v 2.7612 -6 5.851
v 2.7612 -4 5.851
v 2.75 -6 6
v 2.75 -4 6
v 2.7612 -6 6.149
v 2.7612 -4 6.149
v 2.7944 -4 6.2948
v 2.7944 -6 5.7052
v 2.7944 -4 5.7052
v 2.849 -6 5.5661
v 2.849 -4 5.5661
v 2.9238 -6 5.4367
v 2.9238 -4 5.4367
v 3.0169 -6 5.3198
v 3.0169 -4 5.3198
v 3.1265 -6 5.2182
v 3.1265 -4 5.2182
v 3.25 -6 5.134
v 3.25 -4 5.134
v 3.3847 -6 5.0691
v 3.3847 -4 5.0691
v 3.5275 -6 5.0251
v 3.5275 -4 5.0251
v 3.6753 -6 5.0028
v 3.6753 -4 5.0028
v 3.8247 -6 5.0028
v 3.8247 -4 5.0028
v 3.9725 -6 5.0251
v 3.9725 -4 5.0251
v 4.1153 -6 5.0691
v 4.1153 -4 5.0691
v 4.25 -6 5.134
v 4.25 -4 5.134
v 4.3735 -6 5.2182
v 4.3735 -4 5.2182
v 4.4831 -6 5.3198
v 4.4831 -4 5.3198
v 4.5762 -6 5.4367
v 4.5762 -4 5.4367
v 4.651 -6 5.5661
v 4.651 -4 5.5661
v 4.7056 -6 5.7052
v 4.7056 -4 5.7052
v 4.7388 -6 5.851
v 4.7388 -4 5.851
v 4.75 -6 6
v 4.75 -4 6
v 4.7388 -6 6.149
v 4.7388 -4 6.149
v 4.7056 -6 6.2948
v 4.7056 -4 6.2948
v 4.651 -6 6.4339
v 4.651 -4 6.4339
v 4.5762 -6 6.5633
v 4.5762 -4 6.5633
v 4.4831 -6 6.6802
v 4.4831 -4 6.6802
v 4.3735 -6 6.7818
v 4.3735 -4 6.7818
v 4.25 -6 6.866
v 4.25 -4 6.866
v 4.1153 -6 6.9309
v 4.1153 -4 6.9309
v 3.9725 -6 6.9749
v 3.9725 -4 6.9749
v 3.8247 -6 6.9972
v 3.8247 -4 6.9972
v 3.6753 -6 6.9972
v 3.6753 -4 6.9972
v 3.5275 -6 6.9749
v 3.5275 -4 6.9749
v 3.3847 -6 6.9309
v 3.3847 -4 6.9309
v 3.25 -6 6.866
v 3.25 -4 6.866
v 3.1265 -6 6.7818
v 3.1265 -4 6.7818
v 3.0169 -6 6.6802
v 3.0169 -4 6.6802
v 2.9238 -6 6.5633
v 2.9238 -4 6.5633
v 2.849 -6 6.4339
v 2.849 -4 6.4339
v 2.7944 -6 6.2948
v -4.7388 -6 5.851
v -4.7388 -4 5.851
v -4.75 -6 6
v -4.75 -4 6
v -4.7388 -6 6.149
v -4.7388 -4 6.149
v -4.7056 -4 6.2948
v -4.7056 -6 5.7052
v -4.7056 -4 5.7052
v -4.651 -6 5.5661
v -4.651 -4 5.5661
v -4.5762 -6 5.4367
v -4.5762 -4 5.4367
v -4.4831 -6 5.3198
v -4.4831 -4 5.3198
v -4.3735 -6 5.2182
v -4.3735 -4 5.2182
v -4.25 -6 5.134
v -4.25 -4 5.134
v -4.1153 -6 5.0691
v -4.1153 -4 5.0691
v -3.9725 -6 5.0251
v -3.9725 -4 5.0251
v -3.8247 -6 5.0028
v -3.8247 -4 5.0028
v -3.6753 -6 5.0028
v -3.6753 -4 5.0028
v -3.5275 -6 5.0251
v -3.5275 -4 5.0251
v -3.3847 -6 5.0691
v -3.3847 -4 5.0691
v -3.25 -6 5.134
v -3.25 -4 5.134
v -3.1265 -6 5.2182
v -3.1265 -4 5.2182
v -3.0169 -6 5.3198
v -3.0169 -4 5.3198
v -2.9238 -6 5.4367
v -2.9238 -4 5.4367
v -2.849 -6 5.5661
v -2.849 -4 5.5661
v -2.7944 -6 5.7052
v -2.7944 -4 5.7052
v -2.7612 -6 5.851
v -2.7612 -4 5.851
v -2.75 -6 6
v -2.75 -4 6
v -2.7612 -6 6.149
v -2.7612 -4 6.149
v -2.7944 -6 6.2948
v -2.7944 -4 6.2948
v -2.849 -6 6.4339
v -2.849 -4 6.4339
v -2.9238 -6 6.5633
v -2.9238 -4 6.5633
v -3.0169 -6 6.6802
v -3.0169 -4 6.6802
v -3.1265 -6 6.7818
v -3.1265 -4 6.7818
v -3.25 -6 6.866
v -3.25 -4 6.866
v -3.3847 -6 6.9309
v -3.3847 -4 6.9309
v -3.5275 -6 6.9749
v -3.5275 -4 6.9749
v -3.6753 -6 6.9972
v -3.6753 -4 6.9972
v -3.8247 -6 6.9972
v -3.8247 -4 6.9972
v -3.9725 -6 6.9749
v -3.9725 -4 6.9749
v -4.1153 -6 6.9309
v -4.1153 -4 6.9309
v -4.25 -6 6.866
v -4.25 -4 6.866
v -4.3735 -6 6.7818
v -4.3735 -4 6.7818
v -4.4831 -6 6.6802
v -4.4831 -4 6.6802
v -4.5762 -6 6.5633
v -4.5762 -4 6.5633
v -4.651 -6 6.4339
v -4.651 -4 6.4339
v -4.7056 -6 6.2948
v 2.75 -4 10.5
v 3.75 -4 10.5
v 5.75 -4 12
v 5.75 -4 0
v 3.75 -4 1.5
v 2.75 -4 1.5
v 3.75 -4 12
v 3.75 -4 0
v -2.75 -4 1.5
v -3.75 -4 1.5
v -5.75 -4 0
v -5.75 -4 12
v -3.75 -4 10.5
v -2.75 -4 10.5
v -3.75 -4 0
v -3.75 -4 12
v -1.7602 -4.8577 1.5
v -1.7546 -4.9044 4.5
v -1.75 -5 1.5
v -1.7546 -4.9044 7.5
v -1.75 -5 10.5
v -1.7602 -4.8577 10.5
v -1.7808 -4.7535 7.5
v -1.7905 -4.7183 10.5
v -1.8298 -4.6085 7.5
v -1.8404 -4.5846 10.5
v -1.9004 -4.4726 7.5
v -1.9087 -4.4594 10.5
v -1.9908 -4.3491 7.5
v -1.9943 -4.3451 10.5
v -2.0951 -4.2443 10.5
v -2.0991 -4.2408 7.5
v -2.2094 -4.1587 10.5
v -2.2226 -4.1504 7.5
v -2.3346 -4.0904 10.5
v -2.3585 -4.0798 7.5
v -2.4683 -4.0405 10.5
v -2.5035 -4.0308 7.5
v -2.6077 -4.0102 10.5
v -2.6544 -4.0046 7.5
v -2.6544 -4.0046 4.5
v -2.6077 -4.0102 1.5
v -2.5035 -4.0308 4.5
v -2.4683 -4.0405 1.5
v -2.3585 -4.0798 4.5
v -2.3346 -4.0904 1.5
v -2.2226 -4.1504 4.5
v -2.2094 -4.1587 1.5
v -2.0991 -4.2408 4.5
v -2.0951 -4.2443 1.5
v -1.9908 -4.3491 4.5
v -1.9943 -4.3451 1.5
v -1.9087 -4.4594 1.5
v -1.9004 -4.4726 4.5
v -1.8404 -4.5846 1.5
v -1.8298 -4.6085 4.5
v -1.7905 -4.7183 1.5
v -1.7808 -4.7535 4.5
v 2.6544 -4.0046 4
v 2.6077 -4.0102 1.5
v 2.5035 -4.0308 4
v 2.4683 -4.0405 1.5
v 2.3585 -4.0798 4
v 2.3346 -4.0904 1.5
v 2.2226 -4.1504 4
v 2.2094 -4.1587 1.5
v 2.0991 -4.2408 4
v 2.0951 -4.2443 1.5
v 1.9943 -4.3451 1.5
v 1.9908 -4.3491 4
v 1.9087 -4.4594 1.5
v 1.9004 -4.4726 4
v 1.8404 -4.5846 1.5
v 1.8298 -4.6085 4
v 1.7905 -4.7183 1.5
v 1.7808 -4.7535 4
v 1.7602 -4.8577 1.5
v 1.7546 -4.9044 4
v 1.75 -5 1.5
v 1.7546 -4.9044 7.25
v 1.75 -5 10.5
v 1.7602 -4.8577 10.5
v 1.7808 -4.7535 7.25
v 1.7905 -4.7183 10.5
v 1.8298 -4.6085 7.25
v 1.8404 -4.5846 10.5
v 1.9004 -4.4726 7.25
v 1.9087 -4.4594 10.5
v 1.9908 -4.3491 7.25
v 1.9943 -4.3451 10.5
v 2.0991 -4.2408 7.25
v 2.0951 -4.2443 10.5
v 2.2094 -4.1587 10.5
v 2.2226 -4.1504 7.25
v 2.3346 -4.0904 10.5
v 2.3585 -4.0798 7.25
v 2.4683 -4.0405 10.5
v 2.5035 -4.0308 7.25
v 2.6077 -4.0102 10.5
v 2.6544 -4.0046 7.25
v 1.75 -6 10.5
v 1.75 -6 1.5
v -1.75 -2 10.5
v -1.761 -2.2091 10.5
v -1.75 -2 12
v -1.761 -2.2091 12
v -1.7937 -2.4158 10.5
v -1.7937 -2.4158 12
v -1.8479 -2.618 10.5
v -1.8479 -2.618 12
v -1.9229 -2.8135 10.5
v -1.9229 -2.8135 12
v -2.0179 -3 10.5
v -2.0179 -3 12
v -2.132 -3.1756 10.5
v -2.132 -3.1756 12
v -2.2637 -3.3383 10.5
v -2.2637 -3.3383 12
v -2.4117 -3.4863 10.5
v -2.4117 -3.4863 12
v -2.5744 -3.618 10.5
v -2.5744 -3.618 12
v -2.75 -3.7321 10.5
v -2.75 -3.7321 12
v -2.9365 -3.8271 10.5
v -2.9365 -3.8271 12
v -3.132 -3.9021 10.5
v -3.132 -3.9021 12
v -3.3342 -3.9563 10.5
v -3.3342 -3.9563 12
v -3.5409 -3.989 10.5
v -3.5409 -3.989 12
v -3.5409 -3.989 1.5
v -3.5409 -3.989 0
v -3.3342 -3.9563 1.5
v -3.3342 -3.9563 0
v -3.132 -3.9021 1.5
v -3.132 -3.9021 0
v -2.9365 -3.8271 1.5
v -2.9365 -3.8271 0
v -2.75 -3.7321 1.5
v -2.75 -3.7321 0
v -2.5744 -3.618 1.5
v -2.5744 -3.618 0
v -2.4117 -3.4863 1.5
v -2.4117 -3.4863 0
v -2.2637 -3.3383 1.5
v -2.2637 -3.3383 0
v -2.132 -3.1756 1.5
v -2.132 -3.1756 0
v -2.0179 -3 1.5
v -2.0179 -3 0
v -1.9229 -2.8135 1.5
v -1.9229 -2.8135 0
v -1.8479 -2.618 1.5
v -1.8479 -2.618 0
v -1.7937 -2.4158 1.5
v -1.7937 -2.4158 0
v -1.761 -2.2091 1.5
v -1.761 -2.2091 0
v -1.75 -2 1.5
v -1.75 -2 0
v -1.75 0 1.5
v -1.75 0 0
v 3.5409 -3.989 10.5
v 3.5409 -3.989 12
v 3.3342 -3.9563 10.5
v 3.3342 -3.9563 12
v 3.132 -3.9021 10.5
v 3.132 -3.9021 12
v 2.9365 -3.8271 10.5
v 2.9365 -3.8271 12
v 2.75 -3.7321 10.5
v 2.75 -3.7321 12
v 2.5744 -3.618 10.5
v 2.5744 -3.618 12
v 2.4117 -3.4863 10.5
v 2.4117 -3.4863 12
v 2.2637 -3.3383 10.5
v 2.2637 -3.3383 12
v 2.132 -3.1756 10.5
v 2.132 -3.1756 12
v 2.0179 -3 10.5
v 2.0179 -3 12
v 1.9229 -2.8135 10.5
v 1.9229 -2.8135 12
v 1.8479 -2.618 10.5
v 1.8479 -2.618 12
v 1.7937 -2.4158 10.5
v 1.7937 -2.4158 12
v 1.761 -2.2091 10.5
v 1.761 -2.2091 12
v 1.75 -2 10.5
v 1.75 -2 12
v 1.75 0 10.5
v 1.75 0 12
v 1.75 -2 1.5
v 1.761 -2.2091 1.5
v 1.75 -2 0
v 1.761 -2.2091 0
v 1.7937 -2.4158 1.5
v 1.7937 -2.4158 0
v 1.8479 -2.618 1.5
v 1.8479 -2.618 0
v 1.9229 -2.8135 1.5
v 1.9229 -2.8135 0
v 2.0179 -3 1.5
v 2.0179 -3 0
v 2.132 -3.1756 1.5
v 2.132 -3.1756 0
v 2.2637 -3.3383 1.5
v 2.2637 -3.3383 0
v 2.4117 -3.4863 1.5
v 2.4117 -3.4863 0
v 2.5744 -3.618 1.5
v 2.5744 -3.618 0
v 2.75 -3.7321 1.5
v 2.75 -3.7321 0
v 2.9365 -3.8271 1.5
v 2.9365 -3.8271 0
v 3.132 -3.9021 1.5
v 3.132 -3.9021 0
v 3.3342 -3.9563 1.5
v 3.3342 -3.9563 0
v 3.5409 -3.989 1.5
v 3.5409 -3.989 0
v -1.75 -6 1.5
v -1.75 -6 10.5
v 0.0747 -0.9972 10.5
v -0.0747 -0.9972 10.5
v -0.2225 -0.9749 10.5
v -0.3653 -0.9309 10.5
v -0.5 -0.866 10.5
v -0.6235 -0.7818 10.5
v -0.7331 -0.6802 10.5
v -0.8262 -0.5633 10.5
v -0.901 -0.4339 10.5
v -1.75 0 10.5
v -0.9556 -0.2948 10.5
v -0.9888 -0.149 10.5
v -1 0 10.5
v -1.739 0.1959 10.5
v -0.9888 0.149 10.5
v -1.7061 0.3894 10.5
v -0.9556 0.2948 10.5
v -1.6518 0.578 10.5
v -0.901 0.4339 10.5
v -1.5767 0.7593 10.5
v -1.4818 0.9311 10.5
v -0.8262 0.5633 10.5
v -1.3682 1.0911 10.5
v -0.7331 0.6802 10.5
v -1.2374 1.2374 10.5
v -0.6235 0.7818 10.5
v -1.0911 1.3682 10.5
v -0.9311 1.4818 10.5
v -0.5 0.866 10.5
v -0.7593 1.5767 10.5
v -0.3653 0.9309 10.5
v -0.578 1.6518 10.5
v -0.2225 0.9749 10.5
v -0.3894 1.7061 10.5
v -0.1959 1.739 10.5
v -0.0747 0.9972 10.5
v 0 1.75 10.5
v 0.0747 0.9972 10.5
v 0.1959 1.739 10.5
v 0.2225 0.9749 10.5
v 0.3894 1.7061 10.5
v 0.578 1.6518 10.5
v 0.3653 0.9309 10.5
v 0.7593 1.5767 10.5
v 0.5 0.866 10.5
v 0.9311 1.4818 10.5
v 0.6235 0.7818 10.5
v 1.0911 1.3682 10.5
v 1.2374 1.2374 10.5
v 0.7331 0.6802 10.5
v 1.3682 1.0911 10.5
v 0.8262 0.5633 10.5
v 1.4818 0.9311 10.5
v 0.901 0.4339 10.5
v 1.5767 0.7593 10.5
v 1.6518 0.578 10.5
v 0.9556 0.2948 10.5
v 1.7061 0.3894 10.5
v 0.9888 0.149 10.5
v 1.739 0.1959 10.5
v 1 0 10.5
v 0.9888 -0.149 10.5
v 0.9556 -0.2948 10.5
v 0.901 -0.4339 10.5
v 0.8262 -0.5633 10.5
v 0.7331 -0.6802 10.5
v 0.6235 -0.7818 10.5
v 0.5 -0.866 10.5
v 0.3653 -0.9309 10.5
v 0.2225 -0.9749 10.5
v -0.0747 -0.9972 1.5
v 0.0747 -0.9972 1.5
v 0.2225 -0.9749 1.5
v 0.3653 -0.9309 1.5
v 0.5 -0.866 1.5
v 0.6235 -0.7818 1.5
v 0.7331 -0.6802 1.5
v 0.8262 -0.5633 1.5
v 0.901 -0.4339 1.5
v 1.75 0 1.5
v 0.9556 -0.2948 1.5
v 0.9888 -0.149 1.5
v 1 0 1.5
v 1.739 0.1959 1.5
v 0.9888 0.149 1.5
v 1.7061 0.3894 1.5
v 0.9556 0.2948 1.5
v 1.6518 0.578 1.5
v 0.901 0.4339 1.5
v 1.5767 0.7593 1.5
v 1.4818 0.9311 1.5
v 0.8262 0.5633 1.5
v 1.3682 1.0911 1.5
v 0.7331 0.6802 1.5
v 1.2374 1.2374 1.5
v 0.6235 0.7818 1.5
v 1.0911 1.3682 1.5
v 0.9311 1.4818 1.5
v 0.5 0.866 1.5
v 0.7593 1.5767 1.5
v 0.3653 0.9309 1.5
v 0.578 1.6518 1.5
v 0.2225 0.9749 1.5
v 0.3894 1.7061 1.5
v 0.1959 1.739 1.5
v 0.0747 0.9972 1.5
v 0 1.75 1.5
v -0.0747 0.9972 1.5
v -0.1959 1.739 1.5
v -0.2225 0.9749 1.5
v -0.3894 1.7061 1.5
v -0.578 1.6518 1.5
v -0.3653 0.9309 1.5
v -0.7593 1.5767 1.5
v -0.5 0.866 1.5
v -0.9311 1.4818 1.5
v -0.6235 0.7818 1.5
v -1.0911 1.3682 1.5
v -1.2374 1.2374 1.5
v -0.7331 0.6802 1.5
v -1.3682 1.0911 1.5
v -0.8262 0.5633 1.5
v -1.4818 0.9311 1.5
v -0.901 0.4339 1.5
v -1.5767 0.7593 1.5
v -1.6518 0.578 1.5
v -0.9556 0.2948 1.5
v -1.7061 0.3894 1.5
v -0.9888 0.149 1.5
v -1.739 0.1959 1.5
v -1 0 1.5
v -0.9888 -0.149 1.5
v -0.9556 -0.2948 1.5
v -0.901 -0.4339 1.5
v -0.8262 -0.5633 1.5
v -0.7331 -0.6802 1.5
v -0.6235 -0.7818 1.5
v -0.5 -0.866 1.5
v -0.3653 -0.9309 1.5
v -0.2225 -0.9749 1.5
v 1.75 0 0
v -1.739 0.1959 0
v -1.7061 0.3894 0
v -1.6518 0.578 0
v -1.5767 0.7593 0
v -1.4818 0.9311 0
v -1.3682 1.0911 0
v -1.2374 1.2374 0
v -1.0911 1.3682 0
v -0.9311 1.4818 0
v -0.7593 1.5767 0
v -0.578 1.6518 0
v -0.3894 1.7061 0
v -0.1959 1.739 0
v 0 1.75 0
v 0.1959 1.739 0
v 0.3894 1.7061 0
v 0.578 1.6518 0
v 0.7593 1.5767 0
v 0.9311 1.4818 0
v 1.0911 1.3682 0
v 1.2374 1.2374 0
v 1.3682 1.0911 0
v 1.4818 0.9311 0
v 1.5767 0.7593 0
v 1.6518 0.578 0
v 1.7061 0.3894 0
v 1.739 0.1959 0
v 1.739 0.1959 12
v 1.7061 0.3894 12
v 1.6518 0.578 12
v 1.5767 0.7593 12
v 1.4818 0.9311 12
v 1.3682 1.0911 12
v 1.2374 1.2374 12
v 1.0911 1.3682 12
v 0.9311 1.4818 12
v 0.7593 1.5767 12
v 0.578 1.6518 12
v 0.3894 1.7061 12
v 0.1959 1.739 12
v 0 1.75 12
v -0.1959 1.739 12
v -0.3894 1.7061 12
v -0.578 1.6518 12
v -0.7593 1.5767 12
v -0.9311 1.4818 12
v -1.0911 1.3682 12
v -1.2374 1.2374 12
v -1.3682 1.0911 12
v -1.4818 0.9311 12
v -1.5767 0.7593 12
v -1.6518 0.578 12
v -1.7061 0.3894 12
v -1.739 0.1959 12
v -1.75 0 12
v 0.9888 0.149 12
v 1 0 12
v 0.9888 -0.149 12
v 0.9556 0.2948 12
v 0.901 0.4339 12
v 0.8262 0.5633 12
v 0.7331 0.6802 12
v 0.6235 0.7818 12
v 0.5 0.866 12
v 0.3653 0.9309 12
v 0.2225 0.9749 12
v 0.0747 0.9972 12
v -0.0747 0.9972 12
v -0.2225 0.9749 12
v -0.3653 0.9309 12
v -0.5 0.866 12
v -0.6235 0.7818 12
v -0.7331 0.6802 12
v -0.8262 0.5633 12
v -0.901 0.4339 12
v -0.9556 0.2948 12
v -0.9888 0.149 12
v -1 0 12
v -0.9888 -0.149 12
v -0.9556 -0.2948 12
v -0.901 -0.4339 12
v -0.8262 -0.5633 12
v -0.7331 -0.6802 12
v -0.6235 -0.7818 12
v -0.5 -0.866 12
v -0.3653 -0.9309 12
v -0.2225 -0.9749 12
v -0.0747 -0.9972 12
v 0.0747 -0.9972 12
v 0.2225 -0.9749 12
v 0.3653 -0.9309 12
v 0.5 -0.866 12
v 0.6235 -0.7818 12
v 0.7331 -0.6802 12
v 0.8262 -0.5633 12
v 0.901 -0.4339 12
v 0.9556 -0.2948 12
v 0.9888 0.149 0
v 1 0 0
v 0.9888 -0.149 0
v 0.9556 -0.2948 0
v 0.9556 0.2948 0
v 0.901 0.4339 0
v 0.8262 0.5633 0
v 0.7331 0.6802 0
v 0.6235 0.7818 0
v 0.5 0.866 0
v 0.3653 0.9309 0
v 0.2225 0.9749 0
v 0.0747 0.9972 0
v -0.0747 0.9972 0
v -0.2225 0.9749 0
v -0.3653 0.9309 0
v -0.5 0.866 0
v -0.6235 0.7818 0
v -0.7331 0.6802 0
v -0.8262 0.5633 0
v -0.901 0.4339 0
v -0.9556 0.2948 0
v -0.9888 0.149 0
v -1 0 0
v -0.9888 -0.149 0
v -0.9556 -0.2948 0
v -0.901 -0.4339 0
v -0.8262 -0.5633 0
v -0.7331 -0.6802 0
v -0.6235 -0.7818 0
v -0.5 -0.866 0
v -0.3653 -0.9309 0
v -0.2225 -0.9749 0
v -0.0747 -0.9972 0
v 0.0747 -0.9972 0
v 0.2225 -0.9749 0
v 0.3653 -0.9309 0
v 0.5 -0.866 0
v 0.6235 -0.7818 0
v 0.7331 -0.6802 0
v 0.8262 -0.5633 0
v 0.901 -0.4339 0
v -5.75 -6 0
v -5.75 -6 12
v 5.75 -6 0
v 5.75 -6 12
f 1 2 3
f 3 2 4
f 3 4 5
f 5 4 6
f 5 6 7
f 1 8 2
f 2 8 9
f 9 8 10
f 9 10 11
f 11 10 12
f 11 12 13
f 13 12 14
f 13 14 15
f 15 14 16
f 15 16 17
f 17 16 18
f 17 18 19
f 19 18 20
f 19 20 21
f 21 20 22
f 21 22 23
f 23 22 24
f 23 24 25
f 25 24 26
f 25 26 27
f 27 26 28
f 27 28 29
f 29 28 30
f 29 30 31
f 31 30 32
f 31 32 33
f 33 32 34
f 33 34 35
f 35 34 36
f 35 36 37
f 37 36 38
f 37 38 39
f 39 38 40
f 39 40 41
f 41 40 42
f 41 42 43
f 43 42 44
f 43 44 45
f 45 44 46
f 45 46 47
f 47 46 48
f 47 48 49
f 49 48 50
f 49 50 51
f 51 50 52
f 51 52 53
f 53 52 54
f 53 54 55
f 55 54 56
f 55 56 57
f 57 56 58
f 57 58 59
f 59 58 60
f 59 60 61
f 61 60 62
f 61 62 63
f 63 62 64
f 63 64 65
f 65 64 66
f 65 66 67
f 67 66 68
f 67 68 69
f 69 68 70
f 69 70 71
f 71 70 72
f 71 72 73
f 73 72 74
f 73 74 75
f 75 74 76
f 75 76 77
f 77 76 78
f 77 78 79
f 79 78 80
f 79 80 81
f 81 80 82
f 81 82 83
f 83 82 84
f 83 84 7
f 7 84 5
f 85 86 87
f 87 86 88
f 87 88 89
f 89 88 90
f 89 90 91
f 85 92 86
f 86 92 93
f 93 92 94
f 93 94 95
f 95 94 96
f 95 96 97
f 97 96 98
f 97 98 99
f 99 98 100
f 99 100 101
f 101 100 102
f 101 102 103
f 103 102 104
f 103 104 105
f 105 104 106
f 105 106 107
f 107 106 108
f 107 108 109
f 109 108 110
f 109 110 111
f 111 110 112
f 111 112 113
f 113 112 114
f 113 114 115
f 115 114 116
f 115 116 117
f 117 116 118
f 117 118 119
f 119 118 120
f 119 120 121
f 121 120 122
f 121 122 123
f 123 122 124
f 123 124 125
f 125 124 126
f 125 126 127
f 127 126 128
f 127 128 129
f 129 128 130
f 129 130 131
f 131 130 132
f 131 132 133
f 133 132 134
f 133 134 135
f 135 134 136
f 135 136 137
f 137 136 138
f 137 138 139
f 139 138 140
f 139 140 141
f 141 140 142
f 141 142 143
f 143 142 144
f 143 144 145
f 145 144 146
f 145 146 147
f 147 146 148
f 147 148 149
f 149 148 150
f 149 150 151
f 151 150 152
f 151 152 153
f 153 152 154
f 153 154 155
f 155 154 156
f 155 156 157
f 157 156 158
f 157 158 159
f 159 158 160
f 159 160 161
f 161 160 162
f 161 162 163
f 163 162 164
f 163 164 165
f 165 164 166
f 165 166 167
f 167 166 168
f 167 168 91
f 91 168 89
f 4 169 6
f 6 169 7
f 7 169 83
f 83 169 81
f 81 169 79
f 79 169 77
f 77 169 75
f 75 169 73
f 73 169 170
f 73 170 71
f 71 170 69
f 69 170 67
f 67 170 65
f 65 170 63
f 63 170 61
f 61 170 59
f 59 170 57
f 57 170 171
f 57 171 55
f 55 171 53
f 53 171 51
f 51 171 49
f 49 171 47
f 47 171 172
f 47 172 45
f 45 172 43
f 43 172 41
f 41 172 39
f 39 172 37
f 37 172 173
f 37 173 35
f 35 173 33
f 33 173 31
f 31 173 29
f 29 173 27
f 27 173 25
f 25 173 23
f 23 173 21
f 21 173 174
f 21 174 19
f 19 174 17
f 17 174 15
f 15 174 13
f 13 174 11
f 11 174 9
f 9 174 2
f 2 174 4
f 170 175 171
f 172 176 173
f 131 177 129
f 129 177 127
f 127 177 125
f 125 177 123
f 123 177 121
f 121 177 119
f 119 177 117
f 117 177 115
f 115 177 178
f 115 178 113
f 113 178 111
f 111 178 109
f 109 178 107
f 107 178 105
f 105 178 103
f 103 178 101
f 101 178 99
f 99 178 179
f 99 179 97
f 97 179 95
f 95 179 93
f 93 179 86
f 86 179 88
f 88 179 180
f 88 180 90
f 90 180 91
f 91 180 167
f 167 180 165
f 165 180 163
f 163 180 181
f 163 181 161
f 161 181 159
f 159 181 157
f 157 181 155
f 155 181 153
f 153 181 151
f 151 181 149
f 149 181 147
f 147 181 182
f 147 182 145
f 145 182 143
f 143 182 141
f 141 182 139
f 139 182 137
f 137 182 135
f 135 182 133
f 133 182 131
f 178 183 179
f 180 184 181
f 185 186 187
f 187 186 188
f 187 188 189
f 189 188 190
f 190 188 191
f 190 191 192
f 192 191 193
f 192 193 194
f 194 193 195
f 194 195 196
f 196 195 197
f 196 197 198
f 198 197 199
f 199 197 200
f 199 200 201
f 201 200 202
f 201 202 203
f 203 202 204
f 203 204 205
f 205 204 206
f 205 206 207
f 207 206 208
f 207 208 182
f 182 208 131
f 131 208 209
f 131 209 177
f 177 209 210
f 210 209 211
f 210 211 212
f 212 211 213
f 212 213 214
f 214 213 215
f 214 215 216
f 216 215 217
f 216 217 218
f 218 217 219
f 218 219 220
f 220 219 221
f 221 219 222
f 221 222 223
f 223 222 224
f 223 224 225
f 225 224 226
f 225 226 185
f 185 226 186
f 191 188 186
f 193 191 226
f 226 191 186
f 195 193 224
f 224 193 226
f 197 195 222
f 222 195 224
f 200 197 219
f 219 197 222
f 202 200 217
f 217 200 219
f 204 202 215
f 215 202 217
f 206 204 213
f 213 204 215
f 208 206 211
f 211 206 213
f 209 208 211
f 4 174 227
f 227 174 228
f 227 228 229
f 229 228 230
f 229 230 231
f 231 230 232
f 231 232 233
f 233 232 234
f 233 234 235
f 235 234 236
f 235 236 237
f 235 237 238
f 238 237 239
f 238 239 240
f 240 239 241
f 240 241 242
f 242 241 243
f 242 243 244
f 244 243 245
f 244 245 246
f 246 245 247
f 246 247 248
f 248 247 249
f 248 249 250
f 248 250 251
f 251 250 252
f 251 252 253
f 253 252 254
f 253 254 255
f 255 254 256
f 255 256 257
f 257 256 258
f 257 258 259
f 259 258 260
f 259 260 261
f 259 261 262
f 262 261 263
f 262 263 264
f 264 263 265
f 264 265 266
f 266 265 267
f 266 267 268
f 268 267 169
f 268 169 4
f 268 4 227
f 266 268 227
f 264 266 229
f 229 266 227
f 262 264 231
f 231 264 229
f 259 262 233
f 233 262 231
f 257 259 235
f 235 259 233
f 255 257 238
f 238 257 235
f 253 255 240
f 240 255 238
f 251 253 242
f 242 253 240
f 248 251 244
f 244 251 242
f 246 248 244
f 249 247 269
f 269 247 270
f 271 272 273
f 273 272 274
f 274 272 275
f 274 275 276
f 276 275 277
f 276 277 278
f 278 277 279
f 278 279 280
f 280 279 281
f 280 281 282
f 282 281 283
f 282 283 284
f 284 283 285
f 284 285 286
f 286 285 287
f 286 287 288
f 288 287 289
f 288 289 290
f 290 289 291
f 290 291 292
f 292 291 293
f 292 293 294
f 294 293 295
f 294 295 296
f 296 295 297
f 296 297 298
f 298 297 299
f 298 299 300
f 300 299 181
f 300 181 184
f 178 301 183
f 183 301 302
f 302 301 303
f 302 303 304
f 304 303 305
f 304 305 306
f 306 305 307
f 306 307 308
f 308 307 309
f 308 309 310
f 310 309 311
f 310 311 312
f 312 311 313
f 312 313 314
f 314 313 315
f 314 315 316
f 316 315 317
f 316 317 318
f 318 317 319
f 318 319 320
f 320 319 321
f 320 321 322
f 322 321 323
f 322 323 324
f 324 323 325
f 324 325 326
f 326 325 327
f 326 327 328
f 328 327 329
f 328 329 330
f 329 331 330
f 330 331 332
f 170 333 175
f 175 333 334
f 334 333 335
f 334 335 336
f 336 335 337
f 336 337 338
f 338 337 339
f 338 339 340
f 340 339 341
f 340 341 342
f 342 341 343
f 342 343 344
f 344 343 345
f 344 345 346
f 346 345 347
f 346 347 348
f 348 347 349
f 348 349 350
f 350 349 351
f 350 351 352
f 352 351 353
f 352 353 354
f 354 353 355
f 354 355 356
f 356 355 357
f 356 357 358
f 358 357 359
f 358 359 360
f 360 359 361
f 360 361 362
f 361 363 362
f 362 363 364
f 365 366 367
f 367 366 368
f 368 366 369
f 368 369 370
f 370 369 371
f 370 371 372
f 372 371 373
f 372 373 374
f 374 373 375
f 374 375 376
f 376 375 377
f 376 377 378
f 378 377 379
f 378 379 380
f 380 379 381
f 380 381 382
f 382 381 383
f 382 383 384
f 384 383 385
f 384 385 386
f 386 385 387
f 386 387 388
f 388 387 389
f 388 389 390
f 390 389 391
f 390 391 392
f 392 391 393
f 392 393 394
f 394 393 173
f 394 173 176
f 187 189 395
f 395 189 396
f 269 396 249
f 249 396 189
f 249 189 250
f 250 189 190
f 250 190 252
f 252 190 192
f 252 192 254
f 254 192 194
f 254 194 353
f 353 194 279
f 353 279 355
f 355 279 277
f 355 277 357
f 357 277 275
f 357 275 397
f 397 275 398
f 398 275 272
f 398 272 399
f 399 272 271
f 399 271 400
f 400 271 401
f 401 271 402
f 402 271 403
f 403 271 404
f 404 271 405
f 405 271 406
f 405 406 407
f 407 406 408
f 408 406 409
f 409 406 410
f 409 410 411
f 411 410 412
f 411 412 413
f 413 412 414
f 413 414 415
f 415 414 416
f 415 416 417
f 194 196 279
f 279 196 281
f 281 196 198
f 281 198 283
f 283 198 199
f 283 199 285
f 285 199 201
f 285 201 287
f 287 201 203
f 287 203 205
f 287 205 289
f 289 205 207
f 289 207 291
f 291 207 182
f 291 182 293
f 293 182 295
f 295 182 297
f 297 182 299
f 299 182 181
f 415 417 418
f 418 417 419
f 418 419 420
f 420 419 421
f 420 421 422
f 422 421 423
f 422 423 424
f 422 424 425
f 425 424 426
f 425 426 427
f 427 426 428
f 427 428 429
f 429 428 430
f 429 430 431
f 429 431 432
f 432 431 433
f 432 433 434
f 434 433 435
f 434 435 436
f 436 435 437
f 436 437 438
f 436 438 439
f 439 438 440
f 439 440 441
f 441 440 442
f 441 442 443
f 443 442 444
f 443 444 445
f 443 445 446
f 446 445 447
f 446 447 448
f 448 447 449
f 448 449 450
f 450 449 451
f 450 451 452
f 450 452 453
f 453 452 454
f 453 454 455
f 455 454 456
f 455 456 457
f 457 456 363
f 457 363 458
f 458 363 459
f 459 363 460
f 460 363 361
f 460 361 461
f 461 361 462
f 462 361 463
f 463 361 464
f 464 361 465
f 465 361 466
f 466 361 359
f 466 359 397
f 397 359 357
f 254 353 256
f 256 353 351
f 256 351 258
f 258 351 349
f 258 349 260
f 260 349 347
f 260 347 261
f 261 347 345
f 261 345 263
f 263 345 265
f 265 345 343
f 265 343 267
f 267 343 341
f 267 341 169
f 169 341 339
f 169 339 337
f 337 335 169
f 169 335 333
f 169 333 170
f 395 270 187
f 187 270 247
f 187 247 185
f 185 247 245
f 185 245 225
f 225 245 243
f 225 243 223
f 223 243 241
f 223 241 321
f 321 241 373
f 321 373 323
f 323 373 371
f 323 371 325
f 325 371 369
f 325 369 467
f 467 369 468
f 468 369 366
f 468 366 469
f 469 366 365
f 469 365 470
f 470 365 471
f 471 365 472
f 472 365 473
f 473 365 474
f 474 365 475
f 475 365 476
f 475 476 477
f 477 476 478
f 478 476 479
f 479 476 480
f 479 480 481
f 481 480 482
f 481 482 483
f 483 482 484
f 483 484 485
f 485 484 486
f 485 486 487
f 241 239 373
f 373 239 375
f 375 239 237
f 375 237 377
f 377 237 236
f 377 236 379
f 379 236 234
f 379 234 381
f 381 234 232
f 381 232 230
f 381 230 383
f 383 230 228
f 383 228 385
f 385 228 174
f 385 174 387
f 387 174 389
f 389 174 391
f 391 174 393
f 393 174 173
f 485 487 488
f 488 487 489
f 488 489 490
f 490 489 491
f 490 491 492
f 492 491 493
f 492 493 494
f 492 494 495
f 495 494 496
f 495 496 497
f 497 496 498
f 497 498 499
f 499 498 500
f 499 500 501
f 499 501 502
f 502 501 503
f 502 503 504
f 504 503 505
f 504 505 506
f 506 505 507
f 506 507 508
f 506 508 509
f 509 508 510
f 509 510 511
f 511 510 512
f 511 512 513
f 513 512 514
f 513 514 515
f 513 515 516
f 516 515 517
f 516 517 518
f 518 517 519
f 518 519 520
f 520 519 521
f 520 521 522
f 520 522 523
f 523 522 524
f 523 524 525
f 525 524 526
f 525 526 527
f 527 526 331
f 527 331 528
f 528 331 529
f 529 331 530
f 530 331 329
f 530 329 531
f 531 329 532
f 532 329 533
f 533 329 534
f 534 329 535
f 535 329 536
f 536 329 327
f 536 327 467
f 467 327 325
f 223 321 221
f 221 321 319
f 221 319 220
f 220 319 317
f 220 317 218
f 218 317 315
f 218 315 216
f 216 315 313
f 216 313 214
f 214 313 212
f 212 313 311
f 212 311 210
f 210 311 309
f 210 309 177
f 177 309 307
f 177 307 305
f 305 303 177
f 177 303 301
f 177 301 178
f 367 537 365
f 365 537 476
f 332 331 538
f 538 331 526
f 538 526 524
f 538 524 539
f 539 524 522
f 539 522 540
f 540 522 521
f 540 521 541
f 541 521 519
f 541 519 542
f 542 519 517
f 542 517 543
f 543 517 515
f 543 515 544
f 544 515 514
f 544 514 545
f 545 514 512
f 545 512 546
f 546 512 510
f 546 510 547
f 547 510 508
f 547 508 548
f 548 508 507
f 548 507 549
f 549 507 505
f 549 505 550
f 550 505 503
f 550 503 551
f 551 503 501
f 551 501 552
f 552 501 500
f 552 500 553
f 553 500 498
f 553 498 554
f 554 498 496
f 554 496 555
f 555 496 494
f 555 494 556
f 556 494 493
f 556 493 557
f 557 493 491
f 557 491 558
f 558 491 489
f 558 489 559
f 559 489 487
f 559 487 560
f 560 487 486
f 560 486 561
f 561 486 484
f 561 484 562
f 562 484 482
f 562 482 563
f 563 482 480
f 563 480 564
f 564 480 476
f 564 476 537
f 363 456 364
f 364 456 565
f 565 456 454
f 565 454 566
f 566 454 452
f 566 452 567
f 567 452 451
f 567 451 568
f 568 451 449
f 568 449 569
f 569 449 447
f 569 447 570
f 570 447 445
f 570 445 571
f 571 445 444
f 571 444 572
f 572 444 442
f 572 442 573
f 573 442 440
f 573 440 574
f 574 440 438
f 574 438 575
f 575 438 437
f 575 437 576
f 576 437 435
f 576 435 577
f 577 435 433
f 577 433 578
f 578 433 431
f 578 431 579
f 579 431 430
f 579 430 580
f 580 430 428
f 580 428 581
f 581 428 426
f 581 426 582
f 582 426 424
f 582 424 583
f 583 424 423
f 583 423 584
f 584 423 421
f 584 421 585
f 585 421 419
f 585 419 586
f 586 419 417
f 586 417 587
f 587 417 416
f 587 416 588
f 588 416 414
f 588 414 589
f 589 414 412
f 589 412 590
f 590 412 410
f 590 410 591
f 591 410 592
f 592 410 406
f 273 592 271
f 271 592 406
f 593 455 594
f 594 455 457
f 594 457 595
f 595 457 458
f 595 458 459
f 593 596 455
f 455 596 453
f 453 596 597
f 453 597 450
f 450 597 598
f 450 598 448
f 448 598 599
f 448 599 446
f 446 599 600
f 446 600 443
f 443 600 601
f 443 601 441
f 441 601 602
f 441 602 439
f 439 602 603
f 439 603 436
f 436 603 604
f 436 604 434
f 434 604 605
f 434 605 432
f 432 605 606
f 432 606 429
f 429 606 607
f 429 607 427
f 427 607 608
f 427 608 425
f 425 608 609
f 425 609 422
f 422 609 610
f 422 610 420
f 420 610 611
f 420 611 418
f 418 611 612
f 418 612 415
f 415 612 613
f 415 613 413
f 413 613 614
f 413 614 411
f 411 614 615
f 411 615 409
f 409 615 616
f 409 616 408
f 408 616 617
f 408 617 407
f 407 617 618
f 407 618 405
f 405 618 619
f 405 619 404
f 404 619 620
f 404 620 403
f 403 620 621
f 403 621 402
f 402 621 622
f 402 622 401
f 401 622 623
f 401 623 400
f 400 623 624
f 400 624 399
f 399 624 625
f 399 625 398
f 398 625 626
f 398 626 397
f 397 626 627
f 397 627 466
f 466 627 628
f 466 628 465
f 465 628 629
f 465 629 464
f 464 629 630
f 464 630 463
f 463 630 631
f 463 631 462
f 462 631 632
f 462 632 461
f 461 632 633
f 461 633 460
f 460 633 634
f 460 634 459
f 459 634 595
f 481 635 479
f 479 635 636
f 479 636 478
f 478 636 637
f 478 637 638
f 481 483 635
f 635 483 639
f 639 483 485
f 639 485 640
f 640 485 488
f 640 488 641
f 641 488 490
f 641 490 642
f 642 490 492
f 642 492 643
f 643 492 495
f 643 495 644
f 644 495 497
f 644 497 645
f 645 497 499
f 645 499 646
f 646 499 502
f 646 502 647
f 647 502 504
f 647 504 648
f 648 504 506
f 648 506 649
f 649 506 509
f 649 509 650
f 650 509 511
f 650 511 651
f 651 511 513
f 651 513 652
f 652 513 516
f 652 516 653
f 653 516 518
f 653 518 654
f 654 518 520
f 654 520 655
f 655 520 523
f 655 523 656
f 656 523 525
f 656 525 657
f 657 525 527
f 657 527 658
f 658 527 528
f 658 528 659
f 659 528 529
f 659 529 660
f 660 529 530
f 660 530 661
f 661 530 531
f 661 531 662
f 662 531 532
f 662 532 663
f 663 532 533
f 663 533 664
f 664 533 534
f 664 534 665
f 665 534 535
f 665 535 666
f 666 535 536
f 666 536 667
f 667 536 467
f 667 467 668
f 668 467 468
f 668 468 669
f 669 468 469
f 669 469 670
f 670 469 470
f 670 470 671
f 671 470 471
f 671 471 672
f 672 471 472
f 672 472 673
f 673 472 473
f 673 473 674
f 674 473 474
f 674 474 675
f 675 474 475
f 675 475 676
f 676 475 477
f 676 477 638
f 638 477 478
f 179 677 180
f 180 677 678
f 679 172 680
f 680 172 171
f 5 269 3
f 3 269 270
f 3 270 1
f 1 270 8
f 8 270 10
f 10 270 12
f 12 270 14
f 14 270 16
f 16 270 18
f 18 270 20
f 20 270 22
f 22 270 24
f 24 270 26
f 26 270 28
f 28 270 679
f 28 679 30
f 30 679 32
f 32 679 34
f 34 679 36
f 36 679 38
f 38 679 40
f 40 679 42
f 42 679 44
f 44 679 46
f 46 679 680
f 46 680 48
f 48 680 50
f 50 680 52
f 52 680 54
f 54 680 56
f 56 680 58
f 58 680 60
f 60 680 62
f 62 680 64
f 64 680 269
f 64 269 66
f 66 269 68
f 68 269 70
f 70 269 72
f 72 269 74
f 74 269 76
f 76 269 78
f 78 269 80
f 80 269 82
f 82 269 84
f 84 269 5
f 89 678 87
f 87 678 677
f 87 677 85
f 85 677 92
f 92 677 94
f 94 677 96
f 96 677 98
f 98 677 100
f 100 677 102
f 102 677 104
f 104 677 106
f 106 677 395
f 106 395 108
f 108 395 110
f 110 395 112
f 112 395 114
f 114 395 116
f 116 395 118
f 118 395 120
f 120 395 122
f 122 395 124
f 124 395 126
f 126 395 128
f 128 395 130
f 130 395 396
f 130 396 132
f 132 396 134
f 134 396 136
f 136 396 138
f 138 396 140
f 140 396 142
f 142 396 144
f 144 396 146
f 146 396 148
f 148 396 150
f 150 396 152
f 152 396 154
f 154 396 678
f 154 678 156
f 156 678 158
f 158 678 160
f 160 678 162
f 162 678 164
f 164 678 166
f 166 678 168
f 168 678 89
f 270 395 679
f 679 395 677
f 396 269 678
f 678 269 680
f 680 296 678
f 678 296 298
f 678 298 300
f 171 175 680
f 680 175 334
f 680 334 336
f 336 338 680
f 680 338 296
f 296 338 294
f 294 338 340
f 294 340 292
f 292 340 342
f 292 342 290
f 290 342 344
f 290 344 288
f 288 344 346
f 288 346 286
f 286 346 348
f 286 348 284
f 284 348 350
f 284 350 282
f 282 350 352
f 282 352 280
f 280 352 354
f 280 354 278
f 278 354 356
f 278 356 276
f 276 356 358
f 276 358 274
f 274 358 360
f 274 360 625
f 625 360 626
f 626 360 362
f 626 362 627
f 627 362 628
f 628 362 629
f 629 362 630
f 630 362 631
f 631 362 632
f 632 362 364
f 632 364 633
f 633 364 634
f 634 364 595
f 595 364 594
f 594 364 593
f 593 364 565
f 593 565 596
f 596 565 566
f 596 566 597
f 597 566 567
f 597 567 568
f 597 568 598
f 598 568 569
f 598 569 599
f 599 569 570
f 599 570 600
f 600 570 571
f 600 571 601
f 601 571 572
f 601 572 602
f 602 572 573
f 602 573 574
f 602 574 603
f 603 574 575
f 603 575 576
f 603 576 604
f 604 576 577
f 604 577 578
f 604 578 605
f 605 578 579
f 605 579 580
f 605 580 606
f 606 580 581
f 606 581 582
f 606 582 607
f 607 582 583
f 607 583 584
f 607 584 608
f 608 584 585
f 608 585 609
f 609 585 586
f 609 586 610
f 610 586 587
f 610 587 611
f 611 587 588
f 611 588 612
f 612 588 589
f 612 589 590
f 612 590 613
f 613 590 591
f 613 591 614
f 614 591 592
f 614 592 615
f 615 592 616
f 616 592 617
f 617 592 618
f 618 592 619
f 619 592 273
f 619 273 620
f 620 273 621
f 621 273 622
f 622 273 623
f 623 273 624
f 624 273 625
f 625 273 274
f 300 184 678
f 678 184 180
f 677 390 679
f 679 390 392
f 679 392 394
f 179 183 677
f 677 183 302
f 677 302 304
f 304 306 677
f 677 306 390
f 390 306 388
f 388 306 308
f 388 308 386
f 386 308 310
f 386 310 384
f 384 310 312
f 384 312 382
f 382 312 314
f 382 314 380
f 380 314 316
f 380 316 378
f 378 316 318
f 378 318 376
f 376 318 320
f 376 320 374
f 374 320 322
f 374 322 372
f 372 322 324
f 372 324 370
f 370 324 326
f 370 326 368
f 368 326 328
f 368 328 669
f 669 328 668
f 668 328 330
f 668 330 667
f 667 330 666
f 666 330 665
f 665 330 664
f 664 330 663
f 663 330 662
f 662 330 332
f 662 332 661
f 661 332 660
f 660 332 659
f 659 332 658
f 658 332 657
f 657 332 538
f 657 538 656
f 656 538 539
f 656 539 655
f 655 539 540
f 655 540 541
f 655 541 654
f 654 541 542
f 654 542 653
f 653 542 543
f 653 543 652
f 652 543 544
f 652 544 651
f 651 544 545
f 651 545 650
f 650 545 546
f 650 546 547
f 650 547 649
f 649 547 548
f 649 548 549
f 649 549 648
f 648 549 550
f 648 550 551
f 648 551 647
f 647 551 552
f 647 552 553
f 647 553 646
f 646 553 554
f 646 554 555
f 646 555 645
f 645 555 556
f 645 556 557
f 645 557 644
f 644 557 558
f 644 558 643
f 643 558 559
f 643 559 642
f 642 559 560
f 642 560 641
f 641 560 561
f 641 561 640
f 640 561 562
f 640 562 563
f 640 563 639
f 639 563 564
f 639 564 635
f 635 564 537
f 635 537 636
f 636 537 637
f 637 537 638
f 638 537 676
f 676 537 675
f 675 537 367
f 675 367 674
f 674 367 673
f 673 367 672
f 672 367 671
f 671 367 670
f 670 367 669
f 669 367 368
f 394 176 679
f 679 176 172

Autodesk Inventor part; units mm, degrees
ref_plane "YZ Plane" through (0, 0, 0) normal (1, 0, 0) x (0, 1, 0)
ref_plane "XZ Plane" through (0, 0, 0) normal (0, 1, 0) x (-1, 0, 0)
sketch "Sketch1" plane through (0, 0, 0) normal (0, 0, 1) x (1, 0, 0)
  circle A0 centre (0, 0) radius 1
  circle A1 centre (0, 0) radius 1.75
  line L0 (-1.75, 0) -> (-1.75, -4)
  line L1 (-1.75, -4) -> (-5.75, -4)
  line L2 (-5.75, -4) -> (-5.75, -6)
  line L3 (-5.75, -6) -> (0, -6)
  line L4 (0, 0) -> (0, -6)
  line L5 (1.75, 0) -> (1.75, -4)
  line L6 (1.75, -4) -> (5.75, -4)
  line L7 (5.75, -4) -> (5.75, -6)
  line L8 (5.75, -6) -> (0, -6)
  dimension "d9" = 3.5
  dimension "d8" = 2
  dimension "d10" = 4
  dimension "d11" = 4
  dimension "d12" = 2
  dimension "d13" = 5.75
extrude "Extrusion1" add sketch "Sketch1" along normal blind 12
ref_plane "Work Plane1" through (-5.75, 2, 0) normal (0, 1, 0) x (1, 0, 0)
sketch "Sketch2" plane through (-5.75, 2, 0) normal (0, 1, 0) x (1, 0, 0)
  line L0 (7.5, 0) -> (7.5, -12) projected
  line L1 (4, 0) -> (7.5, 0) projected
  line L2 (4, 0) -> (4, -12) projected
  line L3 (4, -12) -> (7.5, -12) projected
  line L4 (6.75, -12) -> (4.75, -12) construction
  line L5 (5.75, -12) -> (5.75, 0) construction
  line L6 (7.5, -6) -> (4, -6) construction
  line L7 (4, 0) -> (4, -12) construction
  line L8 (7.5, -10.5) -> (4, -10.5)
  line L9 (4, -10.5) -> (4, -1.5)
  line L10 (4, -1.5) -> (7.5, -1.5)
  line L11 (7.5, -1.5) -> (7.5, -10.5)
  line L12 (7.5, -10.5) -> (4, -1.5) construction
  line L13 (4, -10.5) -> (7.5, -1.5) construction
  point P0 (5.75, -6)
  dimension "d17" = 9
extrude "Extrusion2" cut sketch "Sketch2" against normal blind 12 contours L0 L8 L2 L10
fillet "Fillet1" radius 2 4 edges at (1.75, -4, 0.75) (1.75, -4, 11.25) (-1.75, -4, 0.75) (-1.75, -4, 11.25)
fillet "Fillet2" radius 1 2 edges at (1.75, -4, 6) (-1.75, -4, 6)
sketch "Sketch3" plane through (-5.75, -4, 12) normal (0, 1, 0) x (1, 0, 0)
  line L0 (8.5, 1.5) -> (8.5, 10.5) projected
  line L1 (8.5, 1.5) -> (9.5, 1.5) projected
  line L2 (9.5, 0) -> (9.5, 1.5) projected
  line L3 (11.5, 0) -> (9.5, 0) projected
  line L4 (11.5, 12) -> (11.5, 0) projected
  line L5 (11.5, 12) -> (9.5, 12) projected
  line L6 (9.5, 10.5) -> (9.5, 12) projected
  line L7 (9.5, 10.5) -> (8.5, 10.5) projected
  line L8 (3, 10.5) -> (3, 1.5) projected
  line L9 (3, 10.5) -> (2, 10.5) projected
  line L10 (2, 12) -> (2, 10.5) projected
  line L11 (2, 12) -> (0, 12) projected
  line L12 (0, 12) -> (0, 0) projected
  line L13 (2, 0) -> (0, 0) projected
  line L14 (2, 1.5) -> (2, 0) projected
  line L15 (2, 1.5) -> (3, 1.5) projected
  line L16 (11.5, 12) -> (11.5, 0) construction
  line L17 (11.5, 6) -> (0, 6) construction
  line L18 (0, 12) -> (0, 0) construction
  circle A0 centre (9.5, 6) radius 1
  circle A1 centre (2, 6) radius 1
  point P0 (5.75, 12)
  dimension "d22" = 2
  dimension "d23" = 2
  dimension "d24" = 2
extrude "Extrusion3" cut sketch "Sketch3" against normal through all contours A0 | A1
properties part number "_3DPrint"
